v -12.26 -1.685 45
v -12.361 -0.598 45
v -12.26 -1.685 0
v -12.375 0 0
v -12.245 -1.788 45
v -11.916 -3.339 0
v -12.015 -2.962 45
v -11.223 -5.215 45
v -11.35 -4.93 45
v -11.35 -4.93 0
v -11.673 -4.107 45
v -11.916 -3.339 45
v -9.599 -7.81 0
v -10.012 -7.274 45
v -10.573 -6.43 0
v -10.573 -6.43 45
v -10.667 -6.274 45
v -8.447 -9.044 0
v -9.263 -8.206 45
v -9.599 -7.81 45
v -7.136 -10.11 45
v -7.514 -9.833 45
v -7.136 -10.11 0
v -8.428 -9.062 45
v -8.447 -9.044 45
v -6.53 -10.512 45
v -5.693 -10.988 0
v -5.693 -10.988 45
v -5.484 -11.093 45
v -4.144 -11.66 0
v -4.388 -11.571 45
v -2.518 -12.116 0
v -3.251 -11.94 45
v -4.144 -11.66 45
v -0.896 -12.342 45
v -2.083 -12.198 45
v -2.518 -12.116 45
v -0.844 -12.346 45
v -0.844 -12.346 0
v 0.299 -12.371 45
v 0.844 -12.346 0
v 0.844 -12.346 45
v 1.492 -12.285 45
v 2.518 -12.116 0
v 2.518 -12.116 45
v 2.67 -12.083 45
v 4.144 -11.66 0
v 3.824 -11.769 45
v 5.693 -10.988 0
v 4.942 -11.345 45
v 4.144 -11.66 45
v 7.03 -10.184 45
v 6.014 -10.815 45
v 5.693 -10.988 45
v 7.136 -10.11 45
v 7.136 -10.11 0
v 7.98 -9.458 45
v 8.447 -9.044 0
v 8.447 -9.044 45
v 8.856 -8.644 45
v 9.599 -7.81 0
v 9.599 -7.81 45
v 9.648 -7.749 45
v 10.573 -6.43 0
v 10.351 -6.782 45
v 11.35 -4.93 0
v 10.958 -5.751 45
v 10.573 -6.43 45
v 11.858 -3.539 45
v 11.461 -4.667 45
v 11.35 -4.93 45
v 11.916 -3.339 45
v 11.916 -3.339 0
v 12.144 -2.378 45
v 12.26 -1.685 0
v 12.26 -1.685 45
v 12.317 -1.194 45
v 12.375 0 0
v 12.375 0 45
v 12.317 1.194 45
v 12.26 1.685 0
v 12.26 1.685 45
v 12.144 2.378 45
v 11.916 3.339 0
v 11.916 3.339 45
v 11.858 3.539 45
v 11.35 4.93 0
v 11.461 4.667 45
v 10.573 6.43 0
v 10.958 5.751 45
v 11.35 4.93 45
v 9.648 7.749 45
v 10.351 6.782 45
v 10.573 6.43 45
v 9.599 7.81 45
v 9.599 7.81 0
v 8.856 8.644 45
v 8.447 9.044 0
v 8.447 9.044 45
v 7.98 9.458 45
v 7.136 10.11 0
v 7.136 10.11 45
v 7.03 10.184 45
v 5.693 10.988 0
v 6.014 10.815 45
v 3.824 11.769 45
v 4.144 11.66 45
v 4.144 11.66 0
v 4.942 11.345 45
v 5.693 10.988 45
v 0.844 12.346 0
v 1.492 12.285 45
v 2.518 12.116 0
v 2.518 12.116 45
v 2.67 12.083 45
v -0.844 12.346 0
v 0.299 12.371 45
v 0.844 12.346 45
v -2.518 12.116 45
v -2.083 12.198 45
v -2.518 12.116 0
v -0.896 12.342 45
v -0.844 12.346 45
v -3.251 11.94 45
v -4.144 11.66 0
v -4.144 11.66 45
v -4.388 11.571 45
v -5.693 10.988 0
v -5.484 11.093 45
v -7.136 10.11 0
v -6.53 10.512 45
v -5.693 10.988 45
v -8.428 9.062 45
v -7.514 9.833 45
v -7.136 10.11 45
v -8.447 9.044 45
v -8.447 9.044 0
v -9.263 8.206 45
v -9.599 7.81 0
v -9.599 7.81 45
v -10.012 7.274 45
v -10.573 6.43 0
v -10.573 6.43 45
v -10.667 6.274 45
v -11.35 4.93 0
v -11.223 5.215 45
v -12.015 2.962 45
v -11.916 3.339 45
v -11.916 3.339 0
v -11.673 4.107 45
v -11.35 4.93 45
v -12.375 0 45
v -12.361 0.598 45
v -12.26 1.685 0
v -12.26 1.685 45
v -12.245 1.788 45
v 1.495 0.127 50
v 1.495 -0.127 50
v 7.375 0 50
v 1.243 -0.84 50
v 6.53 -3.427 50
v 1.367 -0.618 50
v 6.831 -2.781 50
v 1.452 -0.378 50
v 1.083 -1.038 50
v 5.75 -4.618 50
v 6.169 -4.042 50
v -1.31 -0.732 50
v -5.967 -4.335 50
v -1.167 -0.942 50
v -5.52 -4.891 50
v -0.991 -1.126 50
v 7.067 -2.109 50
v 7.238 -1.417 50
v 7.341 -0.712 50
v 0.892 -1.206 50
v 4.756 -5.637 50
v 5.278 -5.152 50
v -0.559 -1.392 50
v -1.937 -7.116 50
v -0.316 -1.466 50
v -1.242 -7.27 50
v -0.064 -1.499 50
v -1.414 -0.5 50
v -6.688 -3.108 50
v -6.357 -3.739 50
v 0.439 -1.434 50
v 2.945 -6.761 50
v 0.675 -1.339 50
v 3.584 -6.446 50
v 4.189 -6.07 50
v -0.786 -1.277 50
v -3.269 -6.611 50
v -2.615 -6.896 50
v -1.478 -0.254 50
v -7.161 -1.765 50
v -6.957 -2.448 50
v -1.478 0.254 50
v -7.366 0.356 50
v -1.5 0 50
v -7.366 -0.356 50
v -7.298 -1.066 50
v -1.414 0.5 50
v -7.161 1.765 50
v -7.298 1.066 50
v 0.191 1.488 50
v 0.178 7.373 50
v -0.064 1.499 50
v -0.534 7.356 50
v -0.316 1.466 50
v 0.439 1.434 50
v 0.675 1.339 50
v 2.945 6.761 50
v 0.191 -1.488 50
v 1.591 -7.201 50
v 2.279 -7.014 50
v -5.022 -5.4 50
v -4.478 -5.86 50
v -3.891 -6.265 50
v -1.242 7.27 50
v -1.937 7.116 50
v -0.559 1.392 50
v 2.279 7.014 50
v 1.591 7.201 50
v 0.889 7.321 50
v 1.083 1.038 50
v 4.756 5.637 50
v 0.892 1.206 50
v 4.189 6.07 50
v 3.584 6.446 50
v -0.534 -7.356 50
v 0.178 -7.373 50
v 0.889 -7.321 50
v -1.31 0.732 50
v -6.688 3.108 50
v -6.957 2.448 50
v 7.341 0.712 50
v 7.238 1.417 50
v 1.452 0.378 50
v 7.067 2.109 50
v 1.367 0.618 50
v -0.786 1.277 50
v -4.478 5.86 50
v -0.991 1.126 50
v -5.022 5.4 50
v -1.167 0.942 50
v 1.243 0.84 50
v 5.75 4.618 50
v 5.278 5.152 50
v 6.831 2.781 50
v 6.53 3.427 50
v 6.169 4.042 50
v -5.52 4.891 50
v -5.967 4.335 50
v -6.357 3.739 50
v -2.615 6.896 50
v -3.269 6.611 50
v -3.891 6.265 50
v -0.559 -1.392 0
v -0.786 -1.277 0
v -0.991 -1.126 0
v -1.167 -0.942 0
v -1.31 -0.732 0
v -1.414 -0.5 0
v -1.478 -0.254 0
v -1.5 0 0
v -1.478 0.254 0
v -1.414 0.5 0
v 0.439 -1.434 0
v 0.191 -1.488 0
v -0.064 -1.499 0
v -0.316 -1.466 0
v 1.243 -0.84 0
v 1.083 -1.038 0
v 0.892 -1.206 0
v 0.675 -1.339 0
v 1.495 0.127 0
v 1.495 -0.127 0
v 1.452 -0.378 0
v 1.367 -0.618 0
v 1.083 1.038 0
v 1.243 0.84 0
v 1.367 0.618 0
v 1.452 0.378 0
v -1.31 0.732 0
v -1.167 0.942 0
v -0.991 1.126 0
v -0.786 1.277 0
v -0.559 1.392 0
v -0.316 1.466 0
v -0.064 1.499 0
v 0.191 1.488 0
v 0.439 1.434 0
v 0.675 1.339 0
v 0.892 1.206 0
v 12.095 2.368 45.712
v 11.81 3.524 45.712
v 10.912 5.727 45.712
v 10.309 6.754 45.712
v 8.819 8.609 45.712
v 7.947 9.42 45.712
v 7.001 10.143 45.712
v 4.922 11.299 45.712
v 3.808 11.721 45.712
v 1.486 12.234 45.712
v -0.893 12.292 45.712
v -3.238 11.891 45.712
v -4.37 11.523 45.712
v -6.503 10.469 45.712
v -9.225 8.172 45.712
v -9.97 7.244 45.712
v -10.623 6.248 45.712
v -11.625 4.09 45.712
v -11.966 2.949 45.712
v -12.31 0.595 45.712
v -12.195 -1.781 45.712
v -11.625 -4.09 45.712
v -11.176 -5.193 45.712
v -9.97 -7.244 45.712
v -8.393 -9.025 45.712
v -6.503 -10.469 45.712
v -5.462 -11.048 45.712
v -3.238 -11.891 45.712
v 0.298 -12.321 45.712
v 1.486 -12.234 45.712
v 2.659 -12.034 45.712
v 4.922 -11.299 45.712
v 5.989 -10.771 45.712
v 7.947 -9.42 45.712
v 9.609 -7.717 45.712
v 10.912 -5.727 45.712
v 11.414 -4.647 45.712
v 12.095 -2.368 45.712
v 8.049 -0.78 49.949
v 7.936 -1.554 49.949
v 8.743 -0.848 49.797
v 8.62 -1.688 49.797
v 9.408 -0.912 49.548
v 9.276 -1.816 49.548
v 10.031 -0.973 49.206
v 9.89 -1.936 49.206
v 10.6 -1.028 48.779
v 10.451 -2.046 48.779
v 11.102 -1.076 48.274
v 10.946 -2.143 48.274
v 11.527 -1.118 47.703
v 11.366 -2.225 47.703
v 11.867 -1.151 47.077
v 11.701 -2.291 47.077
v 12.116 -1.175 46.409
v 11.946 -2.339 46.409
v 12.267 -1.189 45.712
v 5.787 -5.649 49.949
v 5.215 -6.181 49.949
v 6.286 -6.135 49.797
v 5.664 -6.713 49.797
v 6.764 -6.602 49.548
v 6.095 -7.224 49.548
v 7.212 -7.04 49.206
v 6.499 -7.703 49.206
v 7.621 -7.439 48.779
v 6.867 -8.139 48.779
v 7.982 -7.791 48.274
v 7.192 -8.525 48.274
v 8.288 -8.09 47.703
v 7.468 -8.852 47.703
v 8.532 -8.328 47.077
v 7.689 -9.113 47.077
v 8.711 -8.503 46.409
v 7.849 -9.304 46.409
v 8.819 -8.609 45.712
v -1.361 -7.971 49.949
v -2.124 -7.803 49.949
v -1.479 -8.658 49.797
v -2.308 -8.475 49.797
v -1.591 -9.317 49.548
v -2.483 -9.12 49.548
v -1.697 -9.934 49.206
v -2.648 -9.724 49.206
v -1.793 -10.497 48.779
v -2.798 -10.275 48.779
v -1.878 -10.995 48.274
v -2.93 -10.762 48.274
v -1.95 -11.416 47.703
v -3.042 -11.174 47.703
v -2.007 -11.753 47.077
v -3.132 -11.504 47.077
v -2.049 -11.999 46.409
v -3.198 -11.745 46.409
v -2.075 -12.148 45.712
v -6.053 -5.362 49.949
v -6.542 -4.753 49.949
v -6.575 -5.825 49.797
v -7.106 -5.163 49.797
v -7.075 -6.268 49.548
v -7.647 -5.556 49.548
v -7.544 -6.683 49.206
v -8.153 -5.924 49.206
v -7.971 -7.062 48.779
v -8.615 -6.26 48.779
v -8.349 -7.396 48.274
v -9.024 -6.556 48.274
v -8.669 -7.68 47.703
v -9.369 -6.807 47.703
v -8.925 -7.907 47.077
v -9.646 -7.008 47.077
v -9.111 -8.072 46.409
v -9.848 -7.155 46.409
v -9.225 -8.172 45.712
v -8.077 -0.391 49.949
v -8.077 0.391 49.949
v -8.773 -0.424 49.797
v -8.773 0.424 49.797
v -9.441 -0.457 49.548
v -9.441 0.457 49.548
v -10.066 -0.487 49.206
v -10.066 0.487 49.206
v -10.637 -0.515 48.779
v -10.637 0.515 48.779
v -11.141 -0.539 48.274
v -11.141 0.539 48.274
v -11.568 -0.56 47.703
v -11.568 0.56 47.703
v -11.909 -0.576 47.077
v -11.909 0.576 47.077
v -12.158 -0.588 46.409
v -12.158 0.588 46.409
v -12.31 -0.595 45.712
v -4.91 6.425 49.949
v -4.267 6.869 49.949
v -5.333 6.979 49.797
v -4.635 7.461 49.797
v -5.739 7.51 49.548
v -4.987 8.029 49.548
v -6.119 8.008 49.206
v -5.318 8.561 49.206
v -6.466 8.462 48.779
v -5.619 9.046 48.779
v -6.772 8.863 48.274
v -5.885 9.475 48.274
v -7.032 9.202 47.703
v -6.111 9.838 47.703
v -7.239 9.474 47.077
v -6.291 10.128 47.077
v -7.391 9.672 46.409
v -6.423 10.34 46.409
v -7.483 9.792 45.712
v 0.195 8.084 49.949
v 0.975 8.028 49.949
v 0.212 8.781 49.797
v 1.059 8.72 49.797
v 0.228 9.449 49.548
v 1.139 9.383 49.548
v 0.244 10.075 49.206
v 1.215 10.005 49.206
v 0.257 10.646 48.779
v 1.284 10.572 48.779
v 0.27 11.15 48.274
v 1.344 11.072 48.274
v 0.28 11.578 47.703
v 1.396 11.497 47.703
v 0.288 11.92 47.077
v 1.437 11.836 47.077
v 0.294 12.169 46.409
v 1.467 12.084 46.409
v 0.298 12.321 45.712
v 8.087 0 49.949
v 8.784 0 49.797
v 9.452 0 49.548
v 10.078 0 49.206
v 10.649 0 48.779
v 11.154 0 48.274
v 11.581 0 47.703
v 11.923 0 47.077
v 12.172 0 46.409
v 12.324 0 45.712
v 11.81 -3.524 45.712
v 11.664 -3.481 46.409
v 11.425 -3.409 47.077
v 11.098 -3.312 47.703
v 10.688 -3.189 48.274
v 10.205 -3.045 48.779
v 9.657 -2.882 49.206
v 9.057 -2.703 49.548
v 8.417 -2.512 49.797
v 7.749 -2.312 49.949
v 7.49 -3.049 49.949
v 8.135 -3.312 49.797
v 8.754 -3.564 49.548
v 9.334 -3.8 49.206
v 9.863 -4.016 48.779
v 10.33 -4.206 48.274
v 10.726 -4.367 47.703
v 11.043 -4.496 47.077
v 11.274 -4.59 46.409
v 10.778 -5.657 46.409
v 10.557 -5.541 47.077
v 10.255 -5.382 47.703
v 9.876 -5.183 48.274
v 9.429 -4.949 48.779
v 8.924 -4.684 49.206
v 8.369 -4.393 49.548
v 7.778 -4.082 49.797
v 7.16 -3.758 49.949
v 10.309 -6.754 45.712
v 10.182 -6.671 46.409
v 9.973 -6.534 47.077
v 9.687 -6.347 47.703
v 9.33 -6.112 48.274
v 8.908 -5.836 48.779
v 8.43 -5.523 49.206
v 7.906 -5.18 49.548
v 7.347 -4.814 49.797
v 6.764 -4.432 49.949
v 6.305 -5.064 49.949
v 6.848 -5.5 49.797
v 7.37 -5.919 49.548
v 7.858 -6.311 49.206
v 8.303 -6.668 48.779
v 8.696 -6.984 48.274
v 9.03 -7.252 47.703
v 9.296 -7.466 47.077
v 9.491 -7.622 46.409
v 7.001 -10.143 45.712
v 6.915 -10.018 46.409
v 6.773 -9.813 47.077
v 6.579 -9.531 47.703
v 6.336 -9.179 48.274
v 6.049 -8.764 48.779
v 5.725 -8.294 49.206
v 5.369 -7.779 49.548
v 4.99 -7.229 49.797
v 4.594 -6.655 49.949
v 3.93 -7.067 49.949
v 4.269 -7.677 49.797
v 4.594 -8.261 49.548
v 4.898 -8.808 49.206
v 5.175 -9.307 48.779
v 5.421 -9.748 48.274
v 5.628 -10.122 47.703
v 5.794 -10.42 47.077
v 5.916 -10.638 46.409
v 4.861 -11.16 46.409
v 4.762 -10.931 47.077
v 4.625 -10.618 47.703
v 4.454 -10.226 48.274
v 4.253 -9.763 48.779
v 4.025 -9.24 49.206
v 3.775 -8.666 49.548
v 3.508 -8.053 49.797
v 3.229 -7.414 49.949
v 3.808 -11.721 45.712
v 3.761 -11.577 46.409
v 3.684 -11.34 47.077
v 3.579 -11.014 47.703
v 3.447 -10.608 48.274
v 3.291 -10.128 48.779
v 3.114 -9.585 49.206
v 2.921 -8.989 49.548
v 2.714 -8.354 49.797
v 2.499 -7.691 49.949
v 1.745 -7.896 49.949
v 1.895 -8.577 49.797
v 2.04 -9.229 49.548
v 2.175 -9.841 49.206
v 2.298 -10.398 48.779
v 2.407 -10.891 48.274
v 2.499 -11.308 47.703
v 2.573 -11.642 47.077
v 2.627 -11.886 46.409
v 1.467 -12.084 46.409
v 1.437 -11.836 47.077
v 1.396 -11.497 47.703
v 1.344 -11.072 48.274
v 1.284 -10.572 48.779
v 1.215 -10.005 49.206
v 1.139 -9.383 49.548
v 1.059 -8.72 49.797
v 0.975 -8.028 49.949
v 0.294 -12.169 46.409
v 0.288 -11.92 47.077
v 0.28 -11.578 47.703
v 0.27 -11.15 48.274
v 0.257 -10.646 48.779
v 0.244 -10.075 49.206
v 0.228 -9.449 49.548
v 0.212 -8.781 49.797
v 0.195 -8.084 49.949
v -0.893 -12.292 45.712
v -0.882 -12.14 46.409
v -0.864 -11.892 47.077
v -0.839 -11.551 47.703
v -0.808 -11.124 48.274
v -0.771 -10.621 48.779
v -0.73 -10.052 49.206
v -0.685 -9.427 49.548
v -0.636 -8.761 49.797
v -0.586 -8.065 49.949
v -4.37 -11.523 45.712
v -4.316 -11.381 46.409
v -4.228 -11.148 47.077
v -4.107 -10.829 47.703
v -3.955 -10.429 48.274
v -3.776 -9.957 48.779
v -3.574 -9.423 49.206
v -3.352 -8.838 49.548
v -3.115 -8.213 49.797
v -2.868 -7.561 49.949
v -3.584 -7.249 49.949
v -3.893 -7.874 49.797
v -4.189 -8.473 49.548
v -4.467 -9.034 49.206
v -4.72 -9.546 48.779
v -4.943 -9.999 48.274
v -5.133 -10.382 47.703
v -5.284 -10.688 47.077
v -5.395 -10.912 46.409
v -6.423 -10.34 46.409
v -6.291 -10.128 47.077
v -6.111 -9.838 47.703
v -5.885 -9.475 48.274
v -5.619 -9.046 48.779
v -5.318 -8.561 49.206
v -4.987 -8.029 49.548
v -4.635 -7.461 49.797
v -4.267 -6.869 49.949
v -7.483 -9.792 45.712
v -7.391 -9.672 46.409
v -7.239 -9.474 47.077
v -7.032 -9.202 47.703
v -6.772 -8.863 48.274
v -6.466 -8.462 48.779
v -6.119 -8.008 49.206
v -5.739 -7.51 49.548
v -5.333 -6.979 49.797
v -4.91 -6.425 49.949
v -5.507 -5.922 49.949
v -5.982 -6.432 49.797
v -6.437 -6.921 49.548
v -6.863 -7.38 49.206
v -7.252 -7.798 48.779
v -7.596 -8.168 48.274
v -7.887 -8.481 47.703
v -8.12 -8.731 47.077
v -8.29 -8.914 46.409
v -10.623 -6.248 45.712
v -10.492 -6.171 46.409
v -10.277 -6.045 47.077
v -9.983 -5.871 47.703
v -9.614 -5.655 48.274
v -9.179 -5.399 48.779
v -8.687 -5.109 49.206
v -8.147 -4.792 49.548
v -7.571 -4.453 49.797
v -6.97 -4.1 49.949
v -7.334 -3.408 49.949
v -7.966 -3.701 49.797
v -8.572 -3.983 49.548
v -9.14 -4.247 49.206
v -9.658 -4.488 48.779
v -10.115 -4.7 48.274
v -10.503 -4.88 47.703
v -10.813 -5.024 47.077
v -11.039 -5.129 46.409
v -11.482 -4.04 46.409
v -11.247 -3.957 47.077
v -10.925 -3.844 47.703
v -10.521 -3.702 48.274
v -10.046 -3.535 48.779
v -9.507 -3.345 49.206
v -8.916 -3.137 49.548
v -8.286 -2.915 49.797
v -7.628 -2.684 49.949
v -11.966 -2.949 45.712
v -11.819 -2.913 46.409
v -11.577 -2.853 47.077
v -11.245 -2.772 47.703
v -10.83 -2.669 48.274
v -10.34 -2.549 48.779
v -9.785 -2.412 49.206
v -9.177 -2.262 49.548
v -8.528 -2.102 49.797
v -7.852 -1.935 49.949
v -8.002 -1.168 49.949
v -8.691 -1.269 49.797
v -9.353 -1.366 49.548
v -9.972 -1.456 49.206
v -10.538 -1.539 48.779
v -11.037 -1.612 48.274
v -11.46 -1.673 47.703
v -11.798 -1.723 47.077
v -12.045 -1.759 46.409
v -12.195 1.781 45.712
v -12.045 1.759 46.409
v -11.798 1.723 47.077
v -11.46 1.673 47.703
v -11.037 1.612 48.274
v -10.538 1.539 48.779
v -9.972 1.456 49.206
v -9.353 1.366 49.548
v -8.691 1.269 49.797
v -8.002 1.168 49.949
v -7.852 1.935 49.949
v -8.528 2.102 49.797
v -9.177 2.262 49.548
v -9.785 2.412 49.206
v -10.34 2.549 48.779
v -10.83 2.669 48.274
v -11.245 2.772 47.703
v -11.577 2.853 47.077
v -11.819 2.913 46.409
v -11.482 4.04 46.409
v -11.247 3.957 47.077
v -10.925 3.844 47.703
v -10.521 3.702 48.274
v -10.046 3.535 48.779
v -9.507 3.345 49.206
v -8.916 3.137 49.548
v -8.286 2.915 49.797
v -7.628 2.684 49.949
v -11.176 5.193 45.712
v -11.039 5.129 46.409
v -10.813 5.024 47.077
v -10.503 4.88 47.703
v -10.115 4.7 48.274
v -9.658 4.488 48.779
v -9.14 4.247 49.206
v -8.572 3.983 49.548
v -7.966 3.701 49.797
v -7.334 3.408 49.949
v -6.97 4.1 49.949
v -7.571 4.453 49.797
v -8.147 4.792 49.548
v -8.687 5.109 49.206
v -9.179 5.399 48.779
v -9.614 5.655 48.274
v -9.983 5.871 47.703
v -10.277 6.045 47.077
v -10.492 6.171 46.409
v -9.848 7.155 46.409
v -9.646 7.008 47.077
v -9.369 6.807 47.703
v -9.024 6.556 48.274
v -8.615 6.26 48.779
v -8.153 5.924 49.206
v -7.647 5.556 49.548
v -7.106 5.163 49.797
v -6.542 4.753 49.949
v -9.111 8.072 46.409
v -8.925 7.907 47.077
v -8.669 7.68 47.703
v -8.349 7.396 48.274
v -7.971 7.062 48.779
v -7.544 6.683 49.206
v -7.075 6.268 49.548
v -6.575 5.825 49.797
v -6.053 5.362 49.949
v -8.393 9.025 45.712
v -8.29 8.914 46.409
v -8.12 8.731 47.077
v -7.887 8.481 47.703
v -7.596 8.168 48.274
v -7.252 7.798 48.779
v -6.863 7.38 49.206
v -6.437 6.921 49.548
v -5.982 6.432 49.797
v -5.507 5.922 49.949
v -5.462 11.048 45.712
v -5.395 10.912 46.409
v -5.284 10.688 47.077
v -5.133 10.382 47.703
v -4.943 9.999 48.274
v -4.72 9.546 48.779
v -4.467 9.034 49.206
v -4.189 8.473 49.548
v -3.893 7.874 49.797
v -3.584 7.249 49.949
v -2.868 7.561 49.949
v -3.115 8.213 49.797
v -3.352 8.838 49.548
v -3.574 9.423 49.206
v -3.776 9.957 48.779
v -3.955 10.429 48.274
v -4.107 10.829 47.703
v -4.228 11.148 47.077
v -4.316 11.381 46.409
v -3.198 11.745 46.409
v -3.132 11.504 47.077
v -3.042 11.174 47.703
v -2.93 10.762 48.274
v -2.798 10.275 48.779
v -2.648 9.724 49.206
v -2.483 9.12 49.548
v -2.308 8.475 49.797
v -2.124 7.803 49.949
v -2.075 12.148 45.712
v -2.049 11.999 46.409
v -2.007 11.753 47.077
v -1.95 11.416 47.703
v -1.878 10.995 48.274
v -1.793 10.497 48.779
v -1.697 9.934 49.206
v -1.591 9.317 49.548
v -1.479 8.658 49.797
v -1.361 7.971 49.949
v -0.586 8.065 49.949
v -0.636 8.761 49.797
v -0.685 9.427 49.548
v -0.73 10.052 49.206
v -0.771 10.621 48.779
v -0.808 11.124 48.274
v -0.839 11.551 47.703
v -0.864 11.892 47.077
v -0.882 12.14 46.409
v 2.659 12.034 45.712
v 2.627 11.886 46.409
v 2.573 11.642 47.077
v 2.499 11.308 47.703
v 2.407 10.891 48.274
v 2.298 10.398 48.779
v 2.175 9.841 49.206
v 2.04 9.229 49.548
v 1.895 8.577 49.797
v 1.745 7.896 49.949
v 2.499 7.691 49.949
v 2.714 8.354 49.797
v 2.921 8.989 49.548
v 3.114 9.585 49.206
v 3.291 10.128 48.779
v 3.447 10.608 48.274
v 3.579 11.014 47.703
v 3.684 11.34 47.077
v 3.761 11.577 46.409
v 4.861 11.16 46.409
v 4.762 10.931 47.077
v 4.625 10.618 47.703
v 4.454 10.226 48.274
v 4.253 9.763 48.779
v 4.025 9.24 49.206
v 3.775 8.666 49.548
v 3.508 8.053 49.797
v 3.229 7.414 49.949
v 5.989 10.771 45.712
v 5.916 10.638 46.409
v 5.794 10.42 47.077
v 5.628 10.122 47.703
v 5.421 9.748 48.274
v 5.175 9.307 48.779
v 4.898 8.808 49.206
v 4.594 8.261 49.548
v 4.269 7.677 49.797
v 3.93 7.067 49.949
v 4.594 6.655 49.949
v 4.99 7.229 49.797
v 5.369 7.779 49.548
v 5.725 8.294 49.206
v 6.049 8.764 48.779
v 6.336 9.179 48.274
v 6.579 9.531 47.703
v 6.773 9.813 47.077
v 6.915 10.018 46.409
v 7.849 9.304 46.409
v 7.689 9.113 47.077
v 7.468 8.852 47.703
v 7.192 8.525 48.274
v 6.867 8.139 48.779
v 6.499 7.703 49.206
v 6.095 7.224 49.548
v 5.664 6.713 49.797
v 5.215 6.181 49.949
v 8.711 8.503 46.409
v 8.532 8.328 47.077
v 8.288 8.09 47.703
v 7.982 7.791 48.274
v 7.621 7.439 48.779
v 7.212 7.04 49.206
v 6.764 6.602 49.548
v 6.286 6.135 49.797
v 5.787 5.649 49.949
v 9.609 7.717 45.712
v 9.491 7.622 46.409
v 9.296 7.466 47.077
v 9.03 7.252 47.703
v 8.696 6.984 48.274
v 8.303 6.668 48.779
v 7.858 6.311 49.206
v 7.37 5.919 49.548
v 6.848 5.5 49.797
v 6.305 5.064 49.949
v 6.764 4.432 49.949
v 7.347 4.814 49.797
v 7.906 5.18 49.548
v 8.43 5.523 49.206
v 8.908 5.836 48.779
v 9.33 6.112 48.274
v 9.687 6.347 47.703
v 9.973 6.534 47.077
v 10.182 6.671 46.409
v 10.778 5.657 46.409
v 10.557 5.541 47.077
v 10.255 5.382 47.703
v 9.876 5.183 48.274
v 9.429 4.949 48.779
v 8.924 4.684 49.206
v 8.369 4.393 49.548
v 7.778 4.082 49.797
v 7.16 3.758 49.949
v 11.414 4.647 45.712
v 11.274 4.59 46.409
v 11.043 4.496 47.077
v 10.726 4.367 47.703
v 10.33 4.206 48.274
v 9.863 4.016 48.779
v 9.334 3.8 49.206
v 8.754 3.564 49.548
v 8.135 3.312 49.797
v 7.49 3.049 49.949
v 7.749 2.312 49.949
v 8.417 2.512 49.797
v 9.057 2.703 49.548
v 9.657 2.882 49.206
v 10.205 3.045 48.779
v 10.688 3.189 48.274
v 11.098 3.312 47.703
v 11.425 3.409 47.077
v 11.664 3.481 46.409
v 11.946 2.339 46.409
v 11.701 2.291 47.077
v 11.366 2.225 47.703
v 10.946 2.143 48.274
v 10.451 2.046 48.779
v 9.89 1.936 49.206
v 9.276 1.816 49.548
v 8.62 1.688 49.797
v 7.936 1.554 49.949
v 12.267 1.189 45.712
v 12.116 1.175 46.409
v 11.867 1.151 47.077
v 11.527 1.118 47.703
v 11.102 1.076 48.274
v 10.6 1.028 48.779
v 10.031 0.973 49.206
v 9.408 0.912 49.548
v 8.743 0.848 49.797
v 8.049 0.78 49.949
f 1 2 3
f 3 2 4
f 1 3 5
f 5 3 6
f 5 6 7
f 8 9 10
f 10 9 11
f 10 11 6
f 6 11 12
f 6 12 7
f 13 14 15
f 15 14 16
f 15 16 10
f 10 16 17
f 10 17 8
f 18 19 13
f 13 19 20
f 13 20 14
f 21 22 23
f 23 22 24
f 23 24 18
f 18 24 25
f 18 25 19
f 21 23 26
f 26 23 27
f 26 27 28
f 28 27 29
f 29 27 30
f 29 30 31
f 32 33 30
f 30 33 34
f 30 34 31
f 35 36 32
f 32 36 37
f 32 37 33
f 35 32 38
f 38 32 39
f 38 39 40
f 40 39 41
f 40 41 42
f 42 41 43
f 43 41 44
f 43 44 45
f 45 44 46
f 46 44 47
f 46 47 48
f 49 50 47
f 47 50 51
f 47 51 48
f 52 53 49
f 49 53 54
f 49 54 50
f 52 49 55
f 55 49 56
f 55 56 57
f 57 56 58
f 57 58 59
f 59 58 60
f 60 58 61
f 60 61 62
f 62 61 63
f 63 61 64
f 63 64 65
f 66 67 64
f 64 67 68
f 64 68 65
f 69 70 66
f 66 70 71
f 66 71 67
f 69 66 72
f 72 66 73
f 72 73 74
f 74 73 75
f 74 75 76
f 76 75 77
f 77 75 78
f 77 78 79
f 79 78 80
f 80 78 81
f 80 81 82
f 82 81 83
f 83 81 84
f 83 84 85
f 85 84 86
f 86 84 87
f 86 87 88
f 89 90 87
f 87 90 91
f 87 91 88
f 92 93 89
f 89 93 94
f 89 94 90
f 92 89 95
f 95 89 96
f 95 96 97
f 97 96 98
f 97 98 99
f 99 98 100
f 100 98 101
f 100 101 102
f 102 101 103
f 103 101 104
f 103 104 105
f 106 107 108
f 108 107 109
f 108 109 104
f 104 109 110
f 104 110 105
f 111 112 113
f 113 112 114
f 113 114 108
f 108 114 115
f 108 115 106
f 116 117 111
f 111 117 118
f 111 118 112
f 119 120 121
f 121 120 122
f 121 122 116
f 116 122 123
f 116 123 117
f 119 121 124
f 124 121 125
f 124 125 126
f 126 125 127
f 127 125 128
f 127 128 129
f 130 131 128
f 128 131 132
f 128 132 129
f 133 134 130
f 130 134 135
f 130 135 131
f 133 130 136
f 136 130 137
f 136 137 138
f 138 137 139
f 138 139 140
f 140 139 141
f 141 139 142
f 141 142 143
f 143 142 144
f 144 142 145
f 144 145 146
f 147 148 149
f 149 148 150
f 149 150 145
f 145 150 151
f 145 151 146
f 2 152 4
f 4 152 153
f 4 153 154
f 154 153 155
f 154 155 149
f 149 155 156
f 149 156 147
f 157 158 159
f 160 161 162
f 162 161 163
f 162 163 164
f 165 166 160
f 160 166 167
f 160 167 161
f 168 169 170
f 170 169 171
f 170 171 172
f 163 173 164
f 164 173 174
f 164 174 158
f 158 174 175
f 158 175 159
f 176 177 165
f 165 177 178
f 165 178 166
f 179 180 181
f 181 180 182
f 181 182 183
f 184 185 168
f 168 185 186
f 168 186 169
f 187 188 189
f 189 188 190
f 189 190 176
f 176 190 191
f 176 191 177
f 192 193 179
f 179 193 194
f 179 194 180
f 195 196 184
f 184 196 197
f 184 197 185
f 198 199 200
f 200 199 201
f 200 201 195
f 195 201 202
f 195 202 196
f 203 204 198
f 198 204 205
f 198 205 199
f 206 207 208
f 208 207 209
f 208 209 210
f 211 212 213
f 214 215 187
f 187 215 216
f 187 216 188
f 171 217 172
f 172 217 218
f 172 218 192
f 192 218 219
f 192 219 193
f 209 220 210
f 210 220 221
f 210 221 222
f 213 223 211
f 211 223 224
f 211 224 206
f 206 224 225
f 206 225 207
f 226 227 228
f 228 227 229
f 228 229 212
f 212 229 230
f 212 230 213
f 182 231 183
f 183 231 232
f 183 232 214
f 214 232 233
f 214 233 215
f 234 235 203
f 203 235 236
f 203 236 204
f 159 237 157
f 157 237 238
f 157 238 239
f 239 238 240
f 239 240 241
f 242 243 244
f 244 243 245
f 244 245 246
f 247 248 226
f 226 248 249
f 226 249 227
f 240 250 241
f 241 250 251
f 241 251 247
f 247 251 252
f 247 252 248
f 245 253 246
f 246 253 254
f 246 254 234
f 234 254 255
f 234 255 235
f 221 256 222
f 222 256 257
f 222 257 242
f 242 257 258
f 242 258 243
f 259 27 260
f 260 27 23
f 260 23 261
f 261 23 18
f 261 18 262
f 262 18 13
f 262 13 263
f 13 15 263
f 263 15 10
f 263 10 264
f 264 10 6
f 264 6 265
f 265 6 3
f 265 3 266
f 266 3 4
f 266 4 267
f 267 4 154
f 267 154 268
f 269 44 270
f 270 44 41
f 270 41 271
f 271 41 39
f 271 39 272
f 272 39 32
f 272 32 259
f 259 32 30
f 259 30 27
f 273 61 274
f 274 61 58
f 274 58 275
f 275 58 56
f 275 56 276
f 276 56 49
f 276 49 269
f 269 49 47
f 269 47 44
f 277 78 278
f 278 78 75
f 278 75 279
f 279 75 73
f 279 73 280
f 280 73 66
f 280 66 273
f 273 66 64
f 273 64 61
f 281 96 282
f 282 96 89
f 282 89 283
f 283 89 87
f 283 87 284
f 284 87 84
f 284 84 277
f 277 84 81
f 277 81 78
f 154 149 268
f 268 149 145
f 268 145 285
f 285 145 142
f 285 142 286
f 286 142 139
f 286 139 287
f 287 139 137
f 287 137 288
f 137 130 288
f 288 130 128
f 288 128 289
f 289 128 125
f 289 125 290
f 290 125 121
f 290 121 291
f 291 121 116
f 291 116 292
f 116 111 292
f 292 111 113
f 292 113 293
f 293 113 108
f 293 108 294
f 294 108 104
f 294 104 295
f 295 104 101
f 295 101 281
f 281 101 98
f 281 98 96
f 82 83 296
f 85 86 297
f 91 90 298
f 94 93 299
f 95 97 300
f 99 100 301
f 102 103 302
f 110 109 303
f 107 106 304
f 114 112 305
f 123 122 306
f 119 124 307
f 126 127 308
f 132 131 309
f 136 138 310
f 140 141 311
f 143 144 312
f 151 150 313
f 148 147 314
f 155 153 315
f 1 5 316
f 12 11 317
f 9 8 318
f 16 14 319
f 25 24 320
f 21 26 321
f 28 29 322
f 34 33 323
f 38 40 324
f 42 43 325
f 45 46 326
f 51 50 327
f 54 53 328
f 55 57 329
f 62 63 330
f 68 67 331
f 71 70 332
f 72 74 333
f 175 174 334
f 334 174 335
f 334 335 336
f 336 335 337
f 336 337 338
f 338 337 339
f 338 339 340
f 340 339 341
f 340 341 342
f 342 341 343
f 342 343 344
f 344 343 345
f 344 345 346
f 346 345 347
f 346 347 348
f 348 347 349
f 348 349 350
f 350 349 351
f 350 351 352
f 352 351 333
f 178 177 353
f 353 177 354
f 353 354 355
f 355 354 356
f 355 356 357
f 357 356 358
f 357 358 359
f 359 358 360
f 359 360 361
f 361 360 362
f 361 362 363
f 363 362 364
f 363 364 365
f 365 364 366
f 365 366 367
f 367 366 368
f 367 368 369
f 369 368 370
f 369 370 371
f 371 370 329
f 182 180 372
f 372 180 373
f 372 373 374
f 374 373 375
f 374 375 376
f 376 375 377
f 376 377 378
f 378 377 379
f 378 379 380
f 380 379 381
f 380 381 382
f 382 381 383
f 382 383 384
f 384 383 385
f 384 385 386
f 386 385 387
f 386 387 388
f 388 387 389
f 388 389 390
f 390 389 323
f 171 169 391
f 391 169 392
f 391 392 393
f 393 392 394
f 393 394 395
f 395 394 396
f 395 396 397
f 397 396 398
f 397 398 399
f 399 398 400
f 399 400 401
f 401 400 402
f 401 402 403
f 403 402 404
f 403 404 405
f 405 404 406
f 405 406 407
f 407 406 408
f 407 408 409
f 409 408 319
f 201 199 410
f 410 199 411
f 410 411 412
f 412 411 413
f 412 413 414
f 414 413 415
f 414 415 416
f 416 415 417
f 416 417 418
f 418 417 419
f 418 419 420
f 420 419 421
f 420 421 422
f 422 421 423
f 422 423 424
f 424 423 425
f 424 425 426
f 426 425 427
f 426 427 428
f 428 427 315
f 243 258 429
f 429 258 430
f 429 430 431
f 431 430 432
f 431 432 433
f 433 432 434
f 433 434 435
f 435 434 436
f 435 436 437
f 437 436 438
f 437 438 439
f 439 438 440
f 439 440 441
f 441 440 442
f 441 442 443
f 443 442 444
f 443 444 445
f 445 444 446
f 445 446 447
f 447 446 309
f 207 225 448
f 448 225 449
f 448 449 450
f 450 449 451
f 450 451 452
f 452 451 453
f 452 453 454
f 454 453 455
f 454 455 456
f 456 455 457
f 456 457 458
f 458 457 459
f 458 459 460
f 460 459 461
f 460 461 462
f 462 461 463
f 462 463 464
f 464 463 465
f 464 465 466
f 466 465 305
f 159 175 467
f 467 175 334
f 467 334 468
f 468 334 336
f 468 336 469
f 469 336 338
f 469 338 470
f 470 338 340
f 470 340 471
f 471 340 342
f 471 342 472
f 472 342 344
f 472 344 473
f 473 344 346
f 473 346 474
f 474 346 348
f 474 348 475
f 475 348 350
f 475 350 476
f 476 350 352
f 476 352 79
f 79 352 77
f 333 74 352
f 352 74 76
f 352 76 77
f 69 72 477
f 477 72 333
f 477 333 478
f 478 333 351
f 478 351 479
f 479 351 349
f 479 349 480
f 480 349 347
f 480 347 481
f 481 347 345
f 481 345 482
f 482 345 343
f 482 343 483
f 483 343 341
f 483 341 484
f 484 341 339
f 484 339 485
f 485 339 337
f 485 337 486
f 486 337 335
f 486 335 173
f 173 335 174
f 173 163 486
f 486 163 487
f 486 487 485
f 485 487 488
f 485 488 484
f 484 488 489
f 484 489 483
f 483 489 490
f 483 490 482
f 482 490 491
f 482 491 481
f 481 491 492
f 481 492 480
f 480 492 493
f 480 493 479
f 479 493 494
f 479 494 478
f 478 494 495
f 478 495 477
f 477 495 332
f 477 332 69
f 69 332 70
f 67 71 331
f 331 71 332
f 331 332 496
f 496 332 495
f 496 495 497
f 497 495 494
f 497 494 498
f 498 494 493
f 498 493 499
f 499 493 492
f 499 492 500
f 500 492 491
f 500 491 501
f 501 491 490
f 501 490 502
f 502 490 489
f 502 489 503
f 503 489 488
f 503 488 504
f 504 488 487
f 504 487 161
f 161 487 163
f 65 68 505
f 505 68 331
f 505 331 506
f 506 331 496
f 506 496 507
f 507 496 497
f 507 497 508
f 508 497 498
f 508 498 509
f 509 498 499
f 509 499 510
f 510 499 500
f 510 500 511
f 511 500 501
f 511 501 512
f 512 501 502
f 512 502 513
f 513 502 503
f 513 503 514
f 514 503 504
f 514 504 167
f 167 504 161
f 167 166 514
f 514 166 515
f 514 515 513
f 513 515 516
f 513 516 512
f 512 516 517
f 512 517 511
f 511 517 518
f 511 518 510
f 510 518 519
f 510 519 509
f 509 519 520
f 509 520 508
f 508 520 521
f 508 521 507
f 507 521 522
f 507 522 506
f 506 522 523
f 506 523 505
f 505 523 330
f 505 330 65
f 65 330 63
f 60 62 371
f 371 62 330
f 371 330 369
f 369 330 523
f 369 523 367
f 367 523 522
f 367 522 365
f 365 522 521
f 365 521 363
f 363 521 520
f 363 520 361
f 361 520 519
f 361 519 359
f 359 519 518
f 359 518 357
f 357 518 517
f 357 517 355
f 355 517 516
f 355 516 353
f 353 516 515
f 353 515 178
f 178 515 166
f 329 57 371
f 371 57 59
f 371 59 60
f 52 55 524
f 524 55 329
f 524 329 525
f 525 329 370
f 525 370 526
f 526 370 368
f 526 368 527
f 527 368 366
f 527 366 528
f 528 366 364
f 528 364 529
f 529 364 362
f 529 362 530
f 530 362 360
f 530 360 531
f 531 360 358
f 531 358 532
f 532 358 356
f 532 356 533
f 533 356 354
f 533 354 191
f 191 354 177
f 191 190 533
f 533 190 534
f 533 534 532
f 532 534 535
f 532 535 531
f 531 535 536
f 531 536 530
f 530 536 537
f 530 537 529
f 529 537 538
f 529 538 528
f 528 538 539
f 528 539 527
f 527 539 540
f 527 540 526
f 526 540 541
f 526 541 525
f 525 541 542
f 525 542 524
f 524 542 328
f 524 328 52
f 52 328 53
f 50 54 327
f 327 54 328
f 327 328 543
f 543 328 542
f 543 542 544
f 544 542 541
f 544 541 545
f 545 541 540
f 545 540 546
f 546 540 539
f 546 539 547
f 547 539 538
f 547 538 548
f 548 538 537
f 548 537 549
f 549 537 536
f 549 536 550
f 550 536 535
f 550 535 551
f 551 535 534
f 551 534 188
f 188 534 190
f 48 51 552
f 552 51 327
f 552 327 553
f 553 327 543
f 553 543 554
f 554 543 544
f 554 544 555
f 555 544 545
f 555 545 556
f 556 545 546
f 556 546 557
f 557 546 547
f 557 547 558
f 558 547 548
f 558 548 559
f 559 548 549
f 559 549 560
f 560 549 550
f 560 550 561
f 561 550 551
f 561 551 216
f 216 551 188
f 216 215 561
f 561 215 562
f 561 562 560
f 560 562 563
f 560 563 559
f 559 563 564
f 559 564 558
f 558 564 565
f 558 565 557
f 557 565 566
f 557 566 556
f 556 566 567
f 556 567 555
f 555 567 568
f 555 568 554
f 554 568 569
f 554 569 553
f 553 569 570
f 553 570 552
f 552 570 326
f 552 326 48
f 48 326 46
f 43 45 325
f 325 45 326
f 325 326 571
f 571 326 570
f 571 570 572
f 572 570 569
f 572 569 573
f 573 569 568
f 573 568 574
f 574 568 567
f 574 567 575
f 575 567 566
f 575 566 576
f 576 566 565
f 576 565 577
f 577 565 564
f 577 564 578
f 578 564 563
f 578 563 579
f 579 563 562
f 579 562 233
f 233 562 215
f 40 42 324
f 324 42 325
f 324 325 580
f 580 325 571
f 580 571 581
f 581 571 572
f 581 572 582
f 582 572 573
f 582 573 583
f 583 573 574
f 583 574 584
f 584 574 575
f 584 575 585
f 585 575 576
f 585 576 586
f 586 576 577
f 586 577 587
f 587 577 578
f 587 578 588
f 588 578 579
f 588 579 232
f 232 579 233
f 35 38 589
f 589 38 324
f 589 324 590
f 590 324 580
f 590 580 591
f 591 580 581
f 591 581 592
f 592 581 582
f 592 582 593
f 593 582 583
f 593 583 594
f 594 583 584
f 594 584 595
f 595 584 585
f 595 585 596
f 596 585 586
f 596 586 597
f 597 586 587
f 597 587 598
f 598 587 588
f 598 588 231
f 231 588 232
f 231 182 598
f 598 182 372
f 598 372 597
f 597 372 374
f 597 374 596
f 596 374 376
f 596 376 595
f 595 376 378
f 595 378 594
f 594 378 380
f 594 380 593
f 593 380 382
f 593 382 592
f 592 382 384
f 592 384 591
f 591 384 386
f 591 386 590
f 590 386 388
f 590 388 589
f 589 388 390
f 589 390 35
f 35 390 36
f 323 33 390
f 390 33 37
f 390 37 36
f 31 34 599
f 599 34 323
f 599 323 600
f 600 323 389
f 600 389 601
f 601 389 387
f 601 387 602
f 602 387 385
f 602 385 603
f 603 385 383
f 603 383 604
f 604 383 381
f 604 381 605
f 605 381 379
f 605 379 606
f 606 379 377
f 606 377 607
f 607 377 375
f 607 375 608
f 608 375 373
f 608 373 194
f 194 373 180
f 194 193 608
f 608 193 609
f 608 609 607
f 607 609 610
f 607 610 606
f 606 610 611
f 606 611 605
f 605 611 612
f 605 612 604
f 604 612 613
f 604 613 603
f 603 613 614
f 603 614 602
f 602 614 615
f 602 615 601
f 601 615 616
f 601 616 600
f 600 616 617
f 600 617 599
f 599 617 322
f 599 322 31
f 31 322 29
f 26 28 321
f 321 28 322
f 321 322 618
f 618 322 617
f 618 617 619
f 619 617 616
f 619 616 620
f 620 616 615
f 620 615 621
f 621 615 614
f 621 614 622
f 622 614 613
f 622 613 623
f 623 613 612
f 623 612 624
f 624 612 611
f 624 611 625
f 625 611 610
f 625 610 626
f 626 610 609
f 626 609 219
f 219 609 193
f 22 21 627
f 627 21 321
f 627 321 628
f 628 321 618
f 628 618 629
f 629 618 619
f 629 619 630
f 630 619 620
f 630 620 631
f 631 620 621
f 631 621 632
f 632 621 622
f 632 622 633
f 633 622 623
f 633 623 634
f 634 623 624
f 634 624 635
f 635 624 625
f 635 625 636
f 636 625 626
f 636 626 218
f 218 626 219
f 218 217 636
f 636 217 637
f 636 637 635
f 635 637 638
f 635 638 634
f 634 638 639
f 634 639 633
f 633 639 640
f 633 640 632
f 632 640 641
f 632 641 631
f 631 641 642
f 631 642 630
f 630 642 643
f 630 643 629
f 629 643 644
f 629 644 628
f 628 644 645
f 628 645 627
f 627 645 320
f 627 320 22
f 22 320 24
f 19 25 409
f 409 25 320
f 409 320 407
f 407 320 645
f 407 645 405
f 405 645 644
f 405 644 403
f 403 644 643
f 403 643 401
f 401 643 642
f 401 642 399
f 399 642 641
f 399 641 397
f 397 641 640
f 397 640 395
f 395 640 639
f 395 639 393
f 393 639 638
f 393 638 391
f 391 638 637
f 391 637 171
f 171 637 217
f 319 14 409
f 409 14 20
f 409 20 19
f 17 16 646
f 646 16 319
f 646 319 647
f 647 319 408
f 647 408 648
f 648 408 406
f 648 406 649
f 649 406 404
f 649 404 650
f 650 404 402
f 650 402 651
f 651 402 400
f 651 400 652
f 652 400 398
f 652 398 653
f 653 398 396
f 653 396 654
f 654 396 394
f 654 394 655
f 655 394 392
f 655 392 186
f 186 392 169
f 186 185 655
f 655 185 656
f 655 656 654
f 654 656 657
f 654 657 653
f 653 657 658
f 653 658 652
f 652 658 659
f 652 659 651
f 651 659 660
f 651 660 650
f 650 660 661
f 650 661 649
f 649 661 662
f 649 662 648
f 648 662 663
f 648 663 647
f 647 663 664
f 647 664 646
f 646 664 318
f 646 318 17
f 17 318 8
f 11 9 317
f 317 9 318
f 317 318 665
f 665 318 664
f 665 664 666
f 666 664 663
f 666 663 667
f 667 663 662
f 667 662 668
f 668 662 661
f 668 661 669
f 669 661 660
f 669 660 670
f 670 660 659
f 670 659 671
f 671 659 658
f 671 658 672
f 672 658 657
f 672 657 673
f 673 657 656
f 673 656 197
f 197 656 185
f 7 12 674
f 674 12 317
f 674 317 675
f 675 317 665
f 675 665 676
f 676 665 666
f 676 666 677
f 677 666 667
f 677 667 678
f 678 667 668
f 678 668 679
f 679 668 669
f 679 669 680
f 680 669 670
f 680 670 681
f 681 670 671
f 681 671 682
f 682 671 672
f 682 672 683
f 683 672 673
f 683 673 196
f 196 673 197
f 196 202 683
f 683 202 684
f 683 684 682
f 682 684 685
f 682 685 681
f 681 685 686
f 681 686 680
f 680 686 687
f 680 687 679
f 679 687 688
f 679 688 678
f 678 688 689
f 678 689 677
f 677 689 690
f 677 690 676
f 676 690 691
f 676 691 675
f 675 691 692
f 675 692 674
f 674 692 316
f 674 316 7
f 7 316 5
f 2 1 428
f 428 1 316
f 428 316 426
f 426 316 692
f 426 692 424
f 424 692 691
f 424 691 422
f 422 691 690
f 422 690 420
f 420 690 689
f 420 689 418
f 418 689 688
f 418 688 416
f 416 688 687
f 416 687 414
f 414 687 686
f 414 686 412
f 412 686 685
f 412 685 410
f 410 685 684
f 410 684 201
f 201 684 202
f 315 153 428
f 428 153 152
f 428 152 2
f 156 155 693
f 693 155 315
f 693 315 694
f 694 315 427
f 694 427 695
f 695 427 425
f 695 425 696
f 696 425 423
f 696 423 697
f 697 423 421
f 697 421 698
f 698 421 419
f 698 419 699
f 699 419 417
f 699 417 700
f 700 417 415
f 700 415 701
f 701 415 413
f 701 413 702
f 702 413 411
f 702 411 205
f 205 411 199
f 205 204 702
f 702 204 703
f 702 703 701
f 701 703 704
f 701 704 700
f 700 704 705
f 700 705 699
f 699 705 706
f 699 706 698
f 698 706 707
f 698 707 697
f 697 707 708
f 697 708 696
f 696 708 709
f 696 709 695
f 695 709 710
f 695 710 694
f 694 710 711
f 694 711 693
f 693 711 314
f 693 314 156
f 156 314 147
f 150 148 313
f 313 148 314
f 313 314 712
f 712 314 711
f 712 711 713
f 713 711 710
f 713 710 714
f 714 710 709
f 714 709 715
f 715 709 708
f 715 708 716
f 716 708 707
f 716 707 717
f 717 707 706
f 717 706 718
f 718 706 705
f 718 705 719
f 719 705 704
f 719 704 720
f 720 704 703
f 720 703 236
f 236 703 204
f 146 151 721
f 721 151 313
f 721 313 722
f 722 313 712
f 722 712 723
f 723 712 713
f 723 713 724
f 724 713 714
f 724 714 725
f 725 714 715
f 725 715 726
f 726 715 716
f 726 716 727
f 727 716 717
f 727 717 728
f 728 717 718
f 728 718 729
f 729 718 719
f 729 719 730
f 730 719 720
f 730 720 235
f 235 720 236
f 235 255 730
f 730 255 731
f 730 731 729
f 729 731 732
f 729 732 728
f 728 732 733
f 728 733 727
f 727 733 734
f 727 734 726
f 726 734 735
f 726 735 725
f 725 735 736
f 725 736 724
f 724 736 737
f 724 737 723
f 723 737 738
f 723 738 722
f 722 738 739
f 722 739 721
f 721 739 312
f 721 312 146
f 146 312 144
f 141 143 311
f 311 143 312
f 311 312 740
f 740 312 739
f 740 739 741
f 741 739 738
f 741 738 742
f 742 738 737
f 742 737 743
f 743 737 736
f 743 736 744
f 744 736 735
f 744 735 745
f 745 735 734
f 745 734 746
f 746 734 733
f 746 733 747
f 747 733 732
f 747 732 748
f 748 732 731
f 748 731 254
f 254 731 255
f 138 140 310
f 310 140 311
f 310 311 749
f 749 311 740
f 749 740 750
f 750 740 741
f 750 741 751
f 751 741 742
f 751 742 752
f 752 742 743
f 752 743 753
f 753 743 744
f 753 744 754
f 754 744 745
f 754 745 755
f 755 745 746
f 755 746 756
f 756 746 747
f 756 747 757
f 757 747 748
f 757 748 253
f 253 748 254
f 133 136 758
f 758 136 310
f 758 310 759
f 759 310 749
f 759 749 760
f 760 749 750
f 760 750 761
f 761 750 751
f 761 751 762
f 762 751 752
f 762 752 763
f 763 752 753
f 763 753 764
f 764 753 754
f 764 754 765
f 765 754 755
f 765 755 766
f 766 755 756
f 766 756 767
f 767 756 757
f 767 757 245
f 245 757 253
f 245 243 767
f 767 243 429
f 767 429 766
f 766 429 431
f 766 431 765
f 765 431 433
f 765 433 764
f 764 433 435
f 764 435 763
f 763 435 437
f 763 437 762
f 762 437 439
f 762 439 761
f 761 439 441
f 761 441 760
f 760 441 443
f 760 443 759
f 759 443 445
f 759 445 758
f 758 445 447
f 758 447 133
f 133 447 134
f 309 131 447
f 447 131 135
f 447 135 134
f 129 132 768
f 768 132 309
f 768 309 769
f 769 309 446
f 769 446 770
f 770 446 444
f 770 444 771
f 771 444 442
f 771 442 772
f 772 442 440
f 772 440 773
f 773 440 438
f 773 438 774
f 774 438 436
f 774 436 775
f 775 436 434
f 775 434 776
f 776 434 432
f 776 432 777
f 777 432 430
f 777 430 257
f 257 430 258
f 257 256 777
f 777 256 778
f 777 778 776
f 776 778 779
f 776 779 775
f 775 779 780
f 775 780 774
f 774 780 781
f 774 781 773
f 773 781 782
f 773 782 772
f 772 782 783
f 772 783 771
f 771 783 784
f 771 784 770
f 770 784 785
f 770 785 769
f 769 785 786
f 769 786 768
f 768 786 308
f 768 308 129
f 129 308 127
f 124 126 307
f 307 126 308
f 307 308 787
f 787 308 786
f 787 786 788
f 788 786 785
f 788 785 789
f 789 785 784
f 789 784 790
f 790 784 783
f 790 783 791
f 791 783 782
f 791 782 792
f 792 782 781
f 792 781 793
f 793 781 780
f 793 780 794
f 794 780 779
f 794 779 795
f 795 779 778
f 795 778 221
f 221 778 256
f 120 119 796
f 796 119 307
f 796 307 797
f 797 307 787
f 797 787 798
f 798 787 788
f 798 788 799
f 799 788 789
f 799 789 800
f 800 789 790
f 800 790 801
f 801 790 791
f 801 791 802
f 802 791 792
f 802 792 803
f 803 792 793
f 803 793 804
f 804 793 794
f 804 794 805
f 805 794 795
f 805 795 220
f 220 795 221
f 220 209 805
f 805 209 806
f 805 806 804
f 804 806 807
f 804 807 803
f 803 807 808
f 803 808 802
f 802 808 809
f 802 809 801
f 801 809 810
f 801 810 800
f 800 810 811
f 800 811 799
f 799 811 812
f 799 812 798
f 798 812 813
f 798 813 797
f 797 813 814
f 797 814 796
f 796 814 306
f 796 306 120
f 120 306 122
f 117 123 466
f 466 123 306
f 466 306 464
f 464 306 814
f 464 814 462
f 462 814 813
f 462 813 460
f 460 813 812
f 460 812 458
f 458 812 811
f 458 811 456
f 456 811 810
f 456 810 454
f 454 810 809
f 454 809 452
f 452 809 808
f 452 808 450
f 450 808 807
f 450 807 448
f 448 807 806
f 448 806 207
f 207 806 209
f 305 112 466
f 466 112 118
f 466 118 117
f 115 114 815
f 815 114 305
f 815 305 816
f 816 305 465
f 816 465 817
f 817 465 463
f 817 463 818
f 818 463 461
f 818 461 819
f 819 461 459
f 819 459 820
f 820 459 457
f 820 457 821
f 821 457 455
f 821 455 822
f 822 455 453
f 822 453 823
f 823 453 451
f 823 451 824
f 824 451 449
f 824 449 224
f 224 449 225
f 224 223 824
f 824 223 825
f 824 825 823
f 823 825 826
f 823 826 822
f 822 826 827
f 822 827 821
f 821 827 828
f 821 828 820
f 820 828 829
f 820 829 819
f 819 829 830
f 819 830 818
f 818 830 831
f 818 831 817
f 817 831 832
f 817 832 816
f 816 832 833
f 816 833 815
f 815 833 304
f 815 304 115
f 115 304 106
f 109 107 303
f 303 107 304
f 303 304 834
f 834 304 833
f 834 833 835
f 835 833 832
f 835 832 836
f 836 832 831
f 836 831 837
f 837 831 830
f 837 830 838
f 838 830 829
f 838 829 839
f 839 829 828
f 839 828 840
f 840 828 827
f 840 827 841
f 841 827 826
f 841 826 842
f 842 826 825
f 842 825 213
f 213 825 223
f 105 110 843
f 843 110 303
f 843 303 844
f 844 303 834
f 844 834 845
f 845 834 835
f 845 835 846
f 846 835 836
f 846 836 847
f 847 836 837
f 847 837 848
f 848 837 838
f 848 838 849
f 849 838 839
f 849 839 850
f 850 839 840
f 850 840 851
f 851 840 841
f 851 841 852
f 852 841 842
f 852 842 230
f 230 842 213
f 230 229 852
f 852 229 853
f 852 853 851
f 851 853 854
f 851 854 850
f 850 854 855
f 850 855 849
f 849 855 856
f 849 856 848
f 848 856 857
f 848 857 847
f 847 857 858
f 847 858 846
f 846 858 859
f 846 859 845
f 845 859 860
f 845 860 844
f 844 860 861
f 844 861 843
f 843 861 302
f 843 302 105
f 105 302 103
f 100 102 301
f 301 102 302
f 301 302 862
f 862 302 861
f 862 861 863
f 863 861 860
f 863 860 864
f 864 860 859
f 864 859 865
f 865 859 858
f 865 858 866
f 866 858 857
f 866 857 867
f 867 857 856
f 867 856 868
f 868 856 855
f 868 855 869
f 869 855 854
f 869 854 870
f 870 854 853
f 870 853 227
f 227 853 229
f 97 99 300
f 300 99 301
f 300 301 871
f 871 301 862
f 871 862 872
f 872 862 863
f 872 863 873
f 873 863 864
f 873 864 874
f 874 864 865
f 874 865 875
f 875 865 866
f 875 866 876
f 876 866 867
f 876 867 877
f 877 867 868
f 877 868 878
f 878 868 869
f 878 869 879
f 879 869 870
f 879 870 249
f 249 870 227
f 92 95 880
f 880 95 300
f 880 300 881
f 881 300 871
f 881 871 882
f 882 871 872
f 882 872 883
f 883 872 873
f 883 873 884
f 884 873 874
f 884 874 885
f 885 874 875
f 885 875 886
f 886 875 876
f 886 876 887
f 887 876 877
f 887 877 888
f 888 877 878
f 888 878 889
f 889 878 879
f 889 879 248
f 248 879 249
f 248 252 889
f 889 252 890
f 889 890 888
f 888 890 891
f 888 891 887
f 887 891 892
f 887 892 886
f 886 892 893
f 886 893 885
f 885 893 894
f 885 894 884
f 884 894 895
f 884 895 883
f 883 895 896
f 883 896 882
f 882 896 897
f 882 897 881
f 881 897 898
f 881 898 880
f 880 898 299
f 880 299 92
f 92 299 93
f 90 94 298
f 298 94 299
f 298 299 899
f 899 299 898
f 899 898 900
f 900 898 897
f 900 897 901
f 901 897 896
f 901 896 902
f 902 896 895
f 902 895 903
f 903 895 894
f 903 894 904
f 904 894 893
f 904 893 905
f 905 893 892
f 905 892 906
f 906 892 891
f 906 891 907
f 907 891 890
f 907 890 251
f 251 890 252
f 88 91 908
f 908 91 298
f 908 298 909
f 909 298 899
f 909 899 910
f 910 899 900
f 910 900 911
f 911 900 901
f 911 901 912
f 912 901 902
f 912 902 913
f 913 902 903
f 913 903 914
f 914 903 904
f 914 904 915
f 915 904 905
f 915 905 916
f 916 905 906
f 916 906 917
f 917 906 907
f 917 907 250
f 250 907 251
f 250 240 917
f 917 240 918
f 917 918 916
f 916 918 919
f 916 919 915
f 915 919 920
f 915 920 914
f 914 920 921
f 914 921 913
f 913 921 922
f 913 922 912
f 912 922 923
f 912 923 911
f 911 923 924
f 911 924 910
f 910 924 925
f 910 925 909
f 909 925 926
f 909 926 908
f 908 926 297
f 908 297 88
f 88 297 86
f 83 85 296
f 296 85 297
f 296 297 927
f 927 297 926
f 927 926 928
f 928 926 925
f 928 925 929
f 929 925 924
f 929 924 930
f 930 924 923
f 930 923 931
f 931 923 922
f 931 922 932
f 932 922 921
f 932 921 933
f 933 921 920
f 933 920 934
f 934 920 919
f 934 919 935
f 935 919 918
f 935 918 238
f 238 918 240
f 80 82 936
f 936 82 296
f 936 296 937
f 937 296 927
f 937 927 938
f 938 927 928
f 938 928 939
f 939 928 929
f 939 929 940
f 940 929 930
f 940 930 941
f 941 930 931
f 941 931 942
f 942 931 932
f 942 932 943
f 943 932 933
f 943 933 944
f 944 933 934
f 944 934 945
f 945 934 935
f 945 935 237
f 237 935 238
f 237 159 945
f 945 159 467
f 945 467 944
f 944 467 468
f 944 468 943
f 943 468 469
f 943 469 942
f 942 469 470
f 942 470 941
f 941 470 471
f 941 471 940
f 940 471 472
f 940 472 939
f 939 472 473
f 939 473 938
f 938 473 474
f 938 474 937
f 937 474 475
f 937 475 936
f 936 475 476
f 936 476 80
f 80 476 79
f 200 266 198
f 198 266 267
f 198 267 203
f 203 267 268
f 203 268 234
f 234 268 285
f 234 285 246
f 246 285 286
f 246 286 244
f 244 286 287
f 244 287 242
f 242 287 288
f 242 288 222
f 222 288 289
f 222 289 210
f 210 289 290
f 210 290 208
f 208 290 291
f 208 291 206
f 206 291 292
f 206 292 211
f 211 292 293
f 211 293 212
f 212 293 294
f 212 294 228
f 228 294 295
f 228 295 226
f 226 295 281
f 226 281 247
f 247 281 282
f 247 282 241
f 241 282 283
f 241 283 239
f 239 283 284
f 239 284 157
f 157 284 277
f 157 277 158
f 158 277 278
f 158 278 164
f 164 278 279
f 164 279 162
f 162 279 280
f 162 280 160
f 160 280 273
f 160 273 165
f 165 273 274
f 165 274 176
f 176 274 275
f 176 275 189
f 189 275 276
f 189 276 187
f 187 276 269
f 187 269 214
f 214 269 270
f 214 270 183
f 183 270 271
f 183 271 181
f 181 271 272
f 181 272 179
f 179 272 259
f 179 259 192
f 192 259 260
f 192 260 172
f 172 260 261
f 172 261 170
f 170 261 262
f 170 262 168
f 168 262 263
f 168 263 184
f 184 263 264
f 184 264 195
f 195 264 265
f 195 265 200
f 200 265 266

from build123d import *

# Parameters (mm, degrees)
ESQUISSE1_R             = 12.375
BOSS_EXTRU_1_DEPTH      = 50
CONG_2_R                = 5
ESQUISSE2_R             = 1.5
ENL_V_MAT_EXTRU_1_DEPTH = 51


with BuildPart() as part:
    # Esquisse1 → Boss.-Extru.1 (new body)
    with BuildSketch(Plane.XY):
        Circle(ESQUISSE1_R)
    extrude(amount=BOSS_EXTRU_1_DEPTH)

    # Congé2
    cong_2_edges = [part.edges().sort_by_distance(p)[0] for p in [
        (-12.375, 0, 50),
    ]]
    fillet(cong_2_edges, radius=CONG_2_R)

    # Esquisse2 → Enlèv. mat.-Extru.1 (cut, through all)
    with BuildSketch(Plane(origin=(0, 0, 0), x_dir=(-1, 0, 0), z_dir=(0, 0, -1))):
        Circle(ESQUISSE2_R)
    extrude(amount=-ENL_V_MAT_EXTRU_1_DEPTH, mode=Mode.SUBTRACT)


solid = part.part
